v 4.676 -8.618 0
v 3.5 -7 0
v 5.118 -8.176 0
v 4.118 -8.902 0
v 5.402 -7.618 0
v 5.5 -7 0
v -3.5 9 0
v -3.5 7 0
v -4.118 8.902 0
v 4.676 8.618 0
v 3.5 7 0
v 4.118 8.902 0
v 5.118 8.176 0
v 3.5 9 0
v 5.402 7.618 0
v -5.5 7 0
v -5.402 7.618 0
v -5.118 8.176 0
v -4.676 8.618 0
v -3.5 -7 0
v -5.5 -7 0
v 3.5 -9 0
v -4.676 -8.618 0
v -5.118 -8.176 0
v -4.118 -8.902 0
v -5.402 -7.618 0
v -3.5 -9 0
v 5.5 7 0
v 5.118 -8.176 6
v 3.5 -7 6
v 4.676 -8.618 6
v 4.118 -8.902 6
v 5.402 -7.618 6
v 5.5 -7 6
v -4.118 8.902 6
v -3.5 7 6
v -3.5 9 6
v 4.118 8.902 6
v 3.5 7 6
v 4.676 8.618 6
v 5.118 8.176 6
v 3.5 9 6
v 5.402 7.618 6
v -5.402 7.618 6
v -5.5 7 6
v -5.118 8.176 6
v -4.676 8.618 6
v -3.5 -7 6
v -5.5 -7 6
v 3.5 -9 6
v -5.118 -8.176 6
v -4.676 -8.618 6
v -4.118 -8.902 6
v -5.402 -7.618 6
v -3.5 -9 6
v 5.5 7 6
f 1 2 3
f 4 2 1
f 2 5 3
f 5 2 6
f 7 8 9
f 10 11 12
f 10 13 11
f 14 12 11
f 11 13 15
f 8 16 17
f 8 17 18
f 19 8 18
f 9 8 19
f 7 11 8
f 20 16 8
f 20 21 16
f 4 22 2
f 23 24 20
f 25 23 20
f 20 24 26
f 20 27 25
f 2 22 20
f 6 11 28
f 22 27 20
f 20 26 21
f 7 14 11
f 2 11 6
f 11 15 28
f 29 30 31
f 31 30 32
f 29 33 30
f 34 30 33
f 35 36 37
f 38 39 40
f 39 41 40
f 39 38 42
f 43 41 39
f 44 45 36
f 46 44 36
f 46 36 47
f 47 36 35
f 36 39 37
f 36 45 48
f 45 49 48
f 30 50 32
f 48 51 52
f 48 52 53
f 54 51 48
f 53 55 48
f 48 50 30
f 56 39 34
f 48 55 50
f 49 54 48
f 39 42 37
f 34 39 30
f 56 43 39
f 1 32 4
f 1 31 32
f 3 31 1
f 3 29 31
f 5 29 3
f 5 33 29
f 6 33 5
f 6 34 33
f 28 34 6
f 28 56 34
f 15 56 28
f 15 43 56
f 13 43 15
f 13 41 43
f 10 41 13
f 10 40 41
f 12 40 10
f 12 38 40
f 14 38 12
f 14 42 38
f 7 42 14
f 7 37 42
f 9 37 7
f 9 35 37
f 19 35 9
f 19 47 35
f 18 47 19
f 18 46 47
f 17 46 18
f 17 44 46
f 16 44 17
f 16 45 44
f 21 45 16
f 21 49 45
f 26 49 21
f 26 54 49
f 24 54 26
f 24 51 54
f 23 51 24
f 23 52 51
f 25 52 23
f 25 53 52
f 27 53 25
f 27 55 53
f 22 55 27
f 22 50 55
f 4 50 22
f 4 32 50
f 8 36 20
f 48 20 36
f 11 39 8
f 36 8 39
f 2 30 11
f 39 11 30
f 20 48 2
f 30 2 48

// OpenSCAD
$fn = 20;

linear_extrude(height = 6) difference() {
	minkowski() {
		square([7, 14], center=true);
		circle(2);
	}
	square([7, 14], center=true);
}
